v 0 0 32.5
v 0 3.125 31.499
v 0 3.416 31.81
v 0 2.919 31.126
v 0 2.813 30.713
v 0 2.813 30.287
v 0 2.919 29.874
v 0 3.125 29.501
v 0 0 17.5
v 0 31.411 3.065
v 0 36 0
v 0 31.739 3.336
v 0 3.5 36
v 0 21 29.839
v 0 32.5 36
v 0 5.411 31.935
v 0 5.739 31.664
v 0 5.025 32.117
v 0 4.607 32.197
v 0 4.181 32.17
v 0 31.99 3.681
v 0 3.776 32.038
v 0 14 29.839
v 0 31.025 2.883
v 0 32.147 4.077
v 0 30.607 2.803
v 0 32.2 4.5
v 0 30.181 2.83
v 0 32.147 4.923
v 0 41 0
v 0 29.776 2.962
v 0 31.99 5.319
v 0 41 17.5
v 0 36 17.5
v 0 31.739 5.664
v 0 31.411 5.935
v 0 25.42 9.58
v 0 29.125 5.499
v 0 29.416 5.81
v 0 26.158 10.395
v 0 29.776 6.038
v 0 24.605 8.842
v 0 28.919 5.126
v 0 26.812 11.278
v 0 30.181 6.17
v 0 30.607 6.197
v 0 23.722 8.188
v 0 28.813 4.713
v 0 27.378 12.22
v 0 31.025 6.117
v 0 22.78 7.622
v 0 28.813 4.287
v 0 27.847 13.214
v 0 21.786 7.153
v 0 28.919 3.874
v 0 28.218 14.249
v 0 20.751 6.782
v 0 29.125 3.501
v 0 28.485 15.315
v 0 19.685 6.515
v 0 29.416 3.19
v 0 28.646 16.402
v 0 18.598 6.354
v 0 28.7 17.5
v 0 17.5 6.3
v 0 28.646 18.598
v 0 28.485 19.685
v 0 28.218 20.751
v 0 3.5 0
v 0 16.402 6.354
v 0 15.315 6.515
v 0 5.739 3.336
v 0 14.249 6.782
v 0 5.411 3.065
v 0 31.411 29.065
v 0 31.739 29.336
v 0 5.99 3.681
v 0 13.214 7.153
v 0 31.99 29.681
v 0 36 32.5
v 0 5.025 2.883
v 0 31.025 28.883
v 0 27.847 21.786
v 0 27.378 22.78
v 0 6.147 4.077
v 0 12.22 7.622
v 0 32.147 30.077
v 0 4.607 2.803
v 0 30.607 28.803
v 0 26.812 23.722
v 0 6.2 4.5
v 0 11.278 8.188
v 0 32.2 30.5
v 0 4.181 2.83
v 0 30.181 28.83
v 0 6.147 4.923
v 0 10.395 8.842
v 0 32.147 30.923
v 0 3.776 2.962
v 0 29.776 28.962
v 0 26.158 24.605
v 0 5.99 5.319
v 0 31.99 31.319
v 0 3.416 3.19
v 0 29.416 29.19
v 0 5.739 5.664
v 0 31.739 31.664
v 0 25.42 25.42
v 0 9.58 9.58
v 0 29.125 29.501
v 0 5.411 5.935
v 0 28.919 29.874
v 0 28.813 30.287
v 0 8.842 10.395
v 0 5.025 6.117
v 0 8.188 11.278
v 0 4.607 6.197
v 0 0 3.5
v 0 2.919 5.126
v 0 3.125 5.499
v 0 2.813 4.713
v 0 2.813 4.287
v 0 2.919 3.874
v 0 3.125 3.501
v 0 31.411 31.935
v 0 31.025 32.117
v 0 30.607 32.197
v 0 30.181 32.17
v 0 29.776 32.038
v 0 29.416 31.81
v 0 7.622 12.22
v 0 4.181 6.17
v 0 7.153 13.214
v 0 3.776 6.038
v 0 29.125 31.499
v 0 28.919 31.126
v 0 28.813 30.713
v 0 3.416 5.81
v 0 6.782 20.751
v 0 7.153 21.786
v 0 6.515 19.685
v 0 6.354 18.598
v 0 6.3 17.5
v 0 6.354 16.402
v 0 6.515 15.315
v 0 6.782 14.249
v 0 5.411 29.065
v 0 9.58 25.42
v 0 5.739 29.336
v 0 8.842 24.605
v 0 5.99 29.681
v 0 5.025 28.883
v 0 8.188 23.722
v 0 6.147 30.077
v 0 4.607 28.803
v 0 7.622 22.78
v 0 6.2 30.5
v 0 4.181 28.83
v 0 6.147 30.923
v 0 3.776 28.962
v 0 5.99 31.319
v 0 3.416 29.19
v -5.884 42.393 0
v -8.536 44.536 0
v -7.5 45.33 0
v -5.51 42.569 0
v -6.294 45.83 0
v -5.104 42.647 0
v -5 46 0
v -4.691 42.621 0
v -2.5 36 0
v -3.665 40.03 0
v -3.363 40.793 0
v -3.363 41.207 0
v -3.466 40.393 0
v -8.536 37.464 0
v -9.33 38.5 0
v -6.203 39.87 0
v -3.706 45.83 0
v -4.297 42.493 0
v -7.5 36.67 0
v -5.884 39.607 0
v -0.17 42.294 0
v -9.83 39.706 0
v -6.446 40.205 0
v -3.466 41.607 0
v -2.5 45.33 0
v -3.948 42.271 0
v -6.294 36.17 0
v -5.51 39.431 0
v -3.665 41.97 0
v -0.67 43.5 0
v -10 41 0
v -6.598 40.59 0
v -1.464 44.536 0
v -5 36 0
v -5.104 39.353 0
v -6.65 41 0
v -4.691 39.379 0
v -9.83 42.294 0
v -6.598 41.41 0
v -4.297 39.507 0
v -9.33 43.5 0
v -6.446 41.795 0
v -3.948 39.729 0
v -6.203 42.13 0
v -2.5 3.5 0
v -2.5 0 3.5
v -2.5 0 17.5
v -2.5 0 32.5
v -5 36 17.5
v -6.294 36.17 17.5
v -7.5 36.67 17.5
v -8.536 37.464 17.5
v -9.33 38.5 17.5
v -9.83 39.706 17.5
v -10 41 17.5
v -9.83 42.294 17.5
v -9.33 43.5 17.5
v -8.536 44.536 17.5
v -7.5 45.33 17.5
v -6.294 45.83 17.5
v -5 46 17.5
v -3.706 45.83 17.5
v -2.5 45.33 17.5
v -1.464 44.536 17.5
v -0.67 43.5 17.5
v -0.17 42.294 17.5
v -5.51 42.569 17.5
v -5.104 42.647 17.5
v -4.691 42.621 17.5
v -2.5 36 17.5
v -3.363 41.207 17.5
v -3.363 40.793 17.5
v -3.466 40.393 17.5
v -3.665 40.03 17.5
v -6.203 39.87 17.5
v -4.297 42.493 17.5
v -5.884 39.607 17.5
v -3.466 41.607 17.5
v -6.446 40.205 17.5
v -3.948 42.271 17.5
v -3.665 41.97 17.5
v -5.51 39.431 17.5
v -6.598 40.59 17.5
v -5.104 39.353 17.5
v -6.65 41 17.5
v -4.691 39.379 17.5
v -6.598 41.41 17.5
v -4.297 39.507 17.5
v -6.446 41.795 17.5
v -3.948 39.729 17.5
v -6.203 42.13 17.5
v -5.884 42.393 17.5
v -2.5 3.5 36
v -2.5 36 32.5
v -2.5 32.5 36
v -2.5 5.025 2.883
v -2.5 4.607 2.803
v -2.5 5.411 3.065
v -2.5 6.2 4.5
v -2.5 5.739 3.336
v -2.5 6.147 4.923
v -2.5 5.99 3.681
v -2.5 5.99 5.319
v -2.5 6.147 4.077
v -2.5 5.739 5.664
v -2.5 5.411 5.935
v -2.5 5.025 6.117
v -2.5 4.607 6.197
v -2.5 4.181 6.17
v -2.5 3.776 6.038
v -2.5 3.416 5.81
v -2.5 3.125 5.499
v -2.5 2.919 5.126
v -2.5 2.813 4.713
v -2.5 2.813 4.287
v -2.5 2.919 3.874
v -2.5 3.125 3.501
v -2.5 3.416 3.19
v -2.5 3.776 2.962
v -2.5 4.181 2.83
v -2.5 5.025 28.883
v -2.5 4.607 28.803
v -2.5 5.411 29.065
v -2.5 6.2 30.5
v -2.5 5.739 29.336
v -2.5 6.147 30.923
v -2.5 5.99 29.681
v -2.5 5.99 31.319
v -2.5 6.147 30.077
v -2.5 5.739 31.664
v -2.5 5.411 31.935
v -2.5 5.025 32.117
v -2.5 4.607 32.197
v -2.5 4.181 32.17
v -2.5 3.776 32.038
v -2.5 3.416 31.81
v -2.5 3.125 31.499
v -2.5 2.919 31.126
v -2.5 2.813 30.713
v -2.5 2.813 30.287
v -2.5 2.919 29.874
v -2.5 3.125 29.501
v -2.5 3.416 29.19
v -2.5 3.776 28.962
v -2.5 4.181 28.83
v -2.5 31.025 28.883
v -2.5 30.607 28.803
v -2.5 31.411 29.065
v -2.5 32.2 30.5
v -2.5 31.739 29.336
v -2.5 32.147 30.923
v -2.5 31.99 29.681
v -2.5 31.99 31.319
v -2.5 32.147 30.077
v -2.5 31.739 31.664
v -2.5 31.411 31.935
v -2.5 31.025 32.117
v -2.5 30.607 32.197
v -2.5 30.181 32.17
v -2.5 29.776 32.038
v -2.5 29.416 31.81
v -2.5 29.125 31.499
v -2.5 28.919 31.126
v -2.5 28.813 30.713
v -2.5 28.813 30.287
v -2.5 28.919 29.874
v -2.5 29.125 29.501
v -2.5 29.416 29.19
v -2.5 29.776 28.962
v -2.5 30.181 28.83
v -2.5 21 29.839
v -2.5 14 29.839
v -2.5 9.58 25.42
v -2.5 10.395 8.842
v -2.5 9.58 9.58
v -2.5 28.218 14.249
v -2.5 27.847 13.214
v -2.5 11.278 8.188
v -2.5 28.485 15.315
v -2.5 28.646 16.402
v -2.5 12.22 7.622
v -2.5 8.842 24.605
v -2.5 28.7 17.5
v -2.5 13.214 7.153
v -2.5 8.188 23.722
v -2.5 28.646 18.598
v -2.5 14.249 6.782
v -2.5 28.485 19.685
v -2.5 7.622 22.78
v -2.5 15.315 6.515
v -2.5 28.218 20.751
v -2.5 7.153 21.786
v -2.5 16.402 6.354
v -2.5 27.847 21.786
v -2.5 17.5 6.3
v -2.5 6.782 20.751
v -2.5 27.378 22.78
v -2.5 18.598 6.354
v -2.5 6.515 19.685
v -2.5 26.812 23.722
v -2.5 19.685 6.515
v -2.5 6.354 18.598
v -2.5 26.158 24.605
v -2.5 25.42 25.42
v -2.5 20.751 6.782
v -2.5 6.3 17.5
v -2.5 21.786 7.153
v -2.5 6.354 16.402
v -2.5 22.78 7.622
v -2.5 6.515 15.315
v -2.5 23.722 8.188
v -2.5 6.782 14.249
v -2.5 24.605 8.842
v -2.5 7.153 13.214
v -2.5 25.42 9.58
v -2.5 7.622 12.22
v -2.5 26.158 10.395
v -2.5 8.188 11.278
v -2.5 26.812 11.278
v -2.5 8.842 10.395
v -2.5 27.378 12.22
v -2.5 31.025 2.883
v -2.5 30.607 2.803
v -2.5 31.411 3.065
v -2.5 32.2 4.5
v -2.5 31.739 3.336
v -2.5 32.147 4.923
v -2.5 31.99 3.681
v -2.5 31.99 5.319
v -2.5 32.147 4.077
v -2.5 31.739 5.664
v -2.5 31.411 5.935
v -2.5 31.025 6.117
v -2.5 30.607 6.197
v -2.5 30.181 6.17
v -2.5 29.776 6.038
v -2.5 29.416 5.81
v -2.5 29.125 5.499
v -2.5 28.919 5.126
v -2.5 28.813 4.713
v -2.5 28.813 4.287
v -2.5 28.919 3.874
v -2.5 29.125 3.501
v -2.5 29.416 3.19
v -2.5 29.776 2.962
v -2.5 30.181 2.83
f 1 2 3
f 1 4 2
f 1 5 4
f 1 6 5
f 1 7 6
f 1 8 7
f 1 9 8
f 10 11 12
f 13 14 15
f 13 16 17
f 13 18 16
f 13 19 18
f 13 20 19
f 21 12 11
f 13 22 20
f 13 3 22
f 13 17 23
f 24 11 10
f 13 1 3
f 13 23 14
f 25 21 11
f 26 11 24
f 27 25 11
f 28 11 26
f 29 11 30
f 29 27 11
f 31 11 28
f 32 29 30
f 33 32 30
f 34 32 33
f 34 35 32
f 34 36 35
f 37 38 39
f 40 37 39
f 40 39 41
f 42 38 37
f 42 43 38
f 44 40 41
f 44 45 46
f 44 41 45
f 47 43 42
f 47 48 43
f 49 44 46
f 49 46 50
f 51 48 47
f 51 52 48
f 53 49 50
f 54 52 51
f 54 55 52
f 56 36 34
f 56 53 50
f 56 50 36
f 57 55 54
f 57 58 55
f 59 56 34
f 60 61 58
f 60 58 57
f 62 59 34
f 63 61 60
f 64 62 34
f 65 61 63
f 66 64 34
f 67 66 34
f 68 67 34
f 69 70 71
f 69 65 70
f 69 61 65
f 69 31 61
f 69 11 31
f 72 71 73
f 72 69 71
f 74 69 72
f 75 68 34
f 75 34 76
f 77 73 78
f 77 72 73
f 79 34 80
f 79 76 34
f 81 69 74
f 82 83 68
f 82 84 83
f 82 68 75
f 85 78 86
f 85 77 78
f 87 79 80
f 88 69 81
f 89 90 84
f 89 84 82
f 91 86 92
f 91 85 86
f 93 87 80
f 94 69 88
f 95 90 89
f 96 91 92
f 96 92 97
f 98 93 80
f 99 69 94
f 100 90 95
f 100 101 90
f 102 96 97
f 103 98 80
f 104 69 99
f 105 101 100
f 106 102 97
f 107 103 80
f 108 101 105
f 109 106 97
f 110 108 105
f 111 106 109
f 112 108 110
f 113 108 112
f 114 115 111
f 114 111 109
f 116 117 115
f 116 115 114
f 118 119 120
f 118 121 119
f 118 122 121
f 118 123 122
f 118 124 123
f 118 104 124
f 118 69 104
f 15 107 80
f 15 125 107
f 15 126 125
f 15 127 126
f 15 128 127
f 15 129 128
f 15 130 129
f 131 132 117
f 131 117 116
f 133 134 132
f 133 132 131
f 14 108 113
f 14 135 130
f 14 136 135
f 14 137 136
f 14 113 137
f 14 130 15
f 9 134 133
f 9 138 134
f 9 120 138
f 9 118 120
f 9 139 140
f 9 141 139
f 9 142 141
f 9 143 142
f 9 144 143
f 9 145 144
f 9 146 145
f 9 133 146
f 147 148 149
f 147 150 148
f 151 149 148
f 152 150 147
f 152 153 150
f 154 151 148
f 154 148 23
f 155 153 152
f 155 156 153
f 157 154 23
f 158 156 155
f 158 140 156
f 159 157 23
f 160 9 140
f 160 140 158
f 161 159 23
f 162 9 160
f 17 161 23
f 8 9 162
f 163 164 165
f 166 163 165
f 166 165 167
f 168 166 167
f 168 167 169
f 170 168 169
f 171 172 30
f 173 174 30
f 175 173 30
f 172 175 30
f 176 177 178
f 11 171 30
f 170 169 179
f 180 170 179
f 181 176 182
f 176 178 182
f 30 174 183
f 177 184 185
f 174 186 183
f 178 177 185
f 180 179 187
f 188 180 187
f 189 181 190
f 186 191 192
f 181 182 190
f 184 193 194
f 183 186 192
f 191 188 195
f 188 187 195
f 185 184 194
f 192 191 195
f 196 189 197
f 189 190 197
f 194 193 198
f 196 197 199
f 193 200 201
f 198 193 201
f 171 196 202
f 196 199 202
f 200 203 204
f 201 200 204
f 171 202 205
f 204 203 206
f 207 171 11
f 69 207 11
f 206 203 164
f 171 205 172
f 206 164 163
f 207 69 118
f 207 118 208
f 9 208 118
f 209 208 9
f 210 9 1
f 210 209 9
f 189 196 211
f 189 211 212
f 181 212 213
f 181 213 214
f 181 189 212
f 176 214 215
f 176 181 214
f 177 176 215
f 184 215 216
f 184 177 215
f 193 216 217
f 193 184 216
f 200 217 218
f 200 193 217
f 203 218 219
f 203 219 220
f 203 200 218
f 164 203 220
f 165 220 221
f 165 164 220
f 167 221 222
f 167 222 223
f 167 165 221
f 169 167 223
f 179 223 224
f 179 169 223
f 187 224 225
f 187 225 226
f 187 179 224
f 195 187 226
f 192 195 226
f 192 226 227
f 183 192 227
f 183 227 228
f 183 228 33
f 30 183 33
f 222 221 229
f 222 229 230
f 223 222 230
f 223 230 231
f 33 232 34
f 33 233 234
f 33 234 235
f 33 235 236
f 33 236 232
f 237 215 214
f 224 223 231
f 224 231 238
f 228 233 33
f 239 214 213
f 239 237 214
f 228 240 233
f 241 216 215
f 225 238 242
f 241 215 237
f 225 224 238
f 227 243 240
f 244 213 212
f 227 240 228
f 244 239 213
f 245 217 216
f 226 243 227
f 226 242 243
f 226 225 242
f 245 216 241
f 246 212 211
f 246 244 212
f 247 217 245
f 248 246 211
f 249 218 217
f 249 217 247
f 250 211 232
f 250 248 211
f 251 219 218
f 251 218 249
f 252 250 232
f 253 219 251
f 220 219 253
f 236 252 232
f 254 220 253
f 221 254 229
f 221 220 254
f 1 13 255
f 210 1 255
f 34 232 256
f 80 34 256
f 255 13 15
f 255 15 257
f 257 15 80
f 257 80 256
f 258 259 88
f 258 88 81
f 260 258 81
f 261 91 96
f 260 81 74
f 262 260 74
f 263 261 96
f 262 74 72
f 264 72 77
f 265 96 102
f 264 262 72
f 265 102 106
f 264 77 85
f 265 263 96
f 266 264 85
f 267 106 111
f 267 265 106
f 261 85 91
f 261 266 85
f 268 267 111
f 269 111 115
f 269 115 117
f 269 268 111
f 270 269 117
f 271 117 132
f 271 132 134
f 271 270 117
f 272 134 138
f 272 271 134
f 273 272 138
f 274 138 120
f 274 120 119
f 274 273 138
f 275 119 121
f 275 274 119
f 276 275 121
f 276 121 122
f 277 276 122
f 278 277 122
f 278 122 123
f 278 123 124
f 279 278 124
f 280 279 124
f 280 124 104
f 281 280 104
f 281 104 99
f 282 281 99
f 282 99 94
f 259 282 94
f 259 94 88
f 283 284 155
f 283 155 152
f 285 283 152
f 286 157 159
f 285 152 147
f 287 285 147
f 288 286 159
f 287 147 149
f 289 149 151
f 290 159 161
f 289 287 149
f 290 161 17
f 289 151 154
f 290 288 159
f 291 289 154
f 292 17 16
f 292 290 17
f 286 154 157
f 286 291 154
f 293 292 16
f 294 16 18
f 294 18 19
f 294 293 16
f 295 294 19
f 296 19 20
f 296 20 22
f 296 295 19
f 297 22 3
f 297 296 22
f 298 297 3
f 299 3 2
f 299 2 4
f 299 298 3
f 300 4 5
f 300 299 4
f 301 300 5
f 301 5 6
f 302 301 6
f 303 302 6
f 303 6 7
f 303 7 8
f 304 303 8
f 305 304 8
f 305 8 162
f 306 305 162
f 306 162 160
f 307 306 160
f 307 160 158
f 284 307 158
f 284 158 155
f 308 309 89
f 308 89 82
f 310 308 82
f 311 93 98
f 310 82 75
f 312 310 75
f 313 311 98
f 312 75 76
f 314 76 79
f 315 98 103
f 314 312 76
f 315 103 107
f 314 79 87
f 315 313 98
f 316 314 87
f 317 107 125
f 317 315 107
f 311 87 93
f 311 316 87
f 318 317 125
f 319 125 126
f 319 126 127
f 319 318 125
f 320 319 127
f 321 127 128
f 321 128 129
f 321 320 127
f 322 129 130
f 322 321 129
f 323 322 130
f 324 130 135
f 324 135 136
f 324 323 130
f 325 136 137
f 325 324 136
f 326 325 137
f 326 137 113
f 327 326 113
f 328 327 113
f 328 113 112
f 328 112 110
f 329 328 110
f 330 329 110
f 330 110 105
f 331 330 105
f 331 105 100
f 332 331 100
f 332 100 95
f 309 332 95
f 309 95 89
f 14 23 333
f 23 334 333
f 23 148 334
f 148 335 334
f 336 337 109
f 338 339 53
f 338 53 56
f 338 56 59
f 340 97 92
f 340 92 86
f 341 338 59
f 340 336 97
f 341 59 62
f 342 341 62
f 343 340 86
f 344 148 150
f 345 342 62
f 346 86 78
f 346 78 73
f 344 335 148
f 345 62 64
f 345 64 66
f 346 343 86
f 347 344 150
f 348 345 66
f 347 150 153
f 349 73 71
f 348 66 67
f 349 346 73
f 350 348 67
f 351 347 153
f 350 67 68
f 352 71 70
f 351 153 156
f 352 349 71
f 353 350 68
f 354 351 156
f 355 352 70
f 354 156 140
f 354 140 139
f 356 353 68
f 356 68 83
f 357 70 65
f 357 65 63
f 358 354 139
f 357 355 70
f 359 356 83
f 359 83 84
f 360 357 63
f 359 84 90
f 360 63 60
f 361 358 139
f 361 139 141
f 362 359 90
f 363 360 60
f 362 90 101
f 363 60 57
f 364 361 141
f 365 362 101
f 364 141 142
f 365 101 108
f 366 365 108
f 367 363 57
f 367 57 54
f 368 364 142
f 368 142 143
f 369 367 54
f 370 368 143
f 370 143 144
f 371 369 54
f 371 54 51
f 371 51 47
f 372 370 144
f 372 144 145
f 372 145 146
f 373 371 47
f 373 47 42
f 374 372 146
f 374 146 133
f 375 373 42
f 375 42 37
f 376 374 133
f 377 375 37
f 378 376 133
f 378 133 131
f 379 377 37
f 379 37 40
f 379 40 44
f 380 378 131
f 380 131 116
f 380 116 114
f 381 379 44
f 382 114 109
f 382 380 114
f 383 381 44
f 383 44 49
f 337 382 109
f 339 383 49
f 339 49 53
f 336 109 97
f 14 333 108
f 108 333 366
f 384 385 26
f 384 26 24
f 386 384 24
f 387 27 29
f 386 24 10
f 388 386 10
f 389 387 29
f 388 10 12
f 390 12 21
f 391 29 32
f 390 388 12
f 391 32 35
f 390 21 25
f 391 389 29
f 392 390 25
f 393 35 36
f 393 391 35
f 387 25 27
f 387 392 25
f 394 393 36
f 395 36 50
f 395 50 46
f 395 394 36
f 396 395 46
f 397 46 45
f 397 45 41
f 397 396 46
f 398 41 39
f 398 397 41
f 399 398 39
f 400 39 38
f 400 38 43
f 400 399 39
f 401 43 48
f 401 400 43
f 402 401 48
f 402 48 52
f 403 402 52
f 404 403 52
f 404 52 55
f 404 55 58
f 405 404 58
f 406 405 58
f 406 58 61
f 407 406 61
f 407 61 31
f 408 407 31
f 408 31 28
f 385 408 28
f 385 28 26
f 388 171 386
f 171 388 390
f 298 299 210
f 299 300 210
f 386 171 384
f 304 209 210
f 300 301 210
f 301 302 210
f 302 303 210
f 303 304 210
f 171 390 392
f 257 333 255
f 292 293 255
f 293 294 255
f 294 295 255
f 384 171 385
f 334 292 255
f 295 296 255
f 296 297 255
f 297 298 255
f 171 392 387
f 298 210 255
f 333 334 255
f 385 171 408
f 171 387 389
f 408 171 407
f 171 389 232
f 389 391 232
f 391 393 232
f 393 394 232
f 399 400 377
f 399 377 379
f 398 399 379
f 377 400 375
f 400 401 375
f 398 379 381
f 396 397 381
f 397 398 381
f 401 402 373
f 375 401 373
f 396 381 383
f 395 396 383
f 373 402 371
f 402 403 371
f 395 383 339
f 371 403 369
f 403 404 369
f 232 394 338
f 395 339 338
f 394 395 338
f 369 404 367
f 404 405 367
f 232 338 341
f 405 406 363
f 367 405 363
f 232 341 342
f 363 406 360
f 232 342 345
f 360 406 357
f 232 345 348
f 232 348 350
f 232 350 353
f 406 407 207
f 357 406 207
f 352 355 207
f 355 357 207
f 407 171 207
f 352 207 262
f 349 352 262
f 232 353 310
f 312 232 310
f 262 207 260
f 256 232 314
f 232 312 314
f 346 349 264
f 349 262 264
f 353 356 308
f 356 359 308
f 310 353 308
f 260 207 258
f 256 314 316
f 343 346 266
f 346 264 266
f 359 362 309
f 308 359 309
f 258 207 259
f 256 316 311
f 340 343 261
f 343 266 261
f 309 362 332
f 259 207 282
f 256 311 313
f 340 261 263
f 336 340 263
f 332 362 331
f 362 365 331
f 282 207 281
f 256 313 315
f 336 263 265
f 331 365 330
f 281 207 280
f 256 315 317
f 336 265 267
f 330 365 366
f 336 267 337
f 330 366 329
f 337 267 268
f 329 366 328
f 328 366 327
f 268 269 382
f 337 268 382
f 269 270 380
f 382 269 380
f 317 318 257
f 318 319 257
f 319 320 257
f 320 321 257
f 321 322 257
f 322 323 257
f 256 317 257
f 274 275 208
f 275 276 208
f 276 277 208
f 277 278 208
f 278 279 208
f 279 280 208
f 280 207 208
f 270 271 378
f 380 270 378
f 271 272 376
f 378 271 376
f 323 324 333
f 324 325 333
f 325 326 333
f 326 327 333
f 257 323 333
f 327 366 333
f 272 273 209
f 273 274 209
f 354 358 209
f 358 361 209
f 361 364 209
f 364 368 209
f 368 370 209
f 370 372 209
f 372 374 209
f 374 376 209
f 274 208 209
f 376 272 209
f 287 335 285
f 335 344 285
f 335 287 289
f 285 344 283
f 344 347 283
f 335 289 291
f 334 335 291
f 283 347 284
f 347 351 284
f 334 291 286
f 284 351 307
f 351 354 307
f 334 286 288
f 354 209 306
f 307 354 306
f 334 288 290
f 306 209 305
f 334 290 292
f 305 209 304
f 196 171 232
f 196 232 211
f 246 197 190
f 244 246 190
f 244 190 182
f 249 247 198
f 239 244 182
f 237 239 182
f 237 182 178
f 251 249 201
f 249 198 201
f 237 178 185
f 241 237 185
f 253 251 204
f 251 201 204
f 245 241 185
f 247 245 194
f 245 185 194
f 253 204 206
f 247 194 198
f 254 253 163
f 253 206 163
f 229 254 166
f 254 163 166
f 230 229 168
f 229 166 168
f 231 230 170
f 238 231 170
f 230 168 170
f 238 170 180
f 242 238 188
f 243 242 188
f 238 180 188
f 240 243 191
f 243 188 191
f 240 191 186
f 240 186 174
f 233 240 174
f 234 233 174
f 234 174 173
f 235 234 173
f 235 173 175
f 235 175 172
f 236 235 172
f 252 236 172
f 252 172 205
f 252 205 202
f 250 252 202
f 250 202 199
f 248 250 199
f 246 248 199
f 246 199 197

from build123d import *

# Parameters (mm, degrees)
BOX_W        = 2.5
BOX_H        = 36
BOX_DEPTH    = 36
SKETCH_R     = 1.65
PAD_DEPTH    = 17.5
SKETCH001_R  = 1.7
POCKET_DEPTH = 5
CHAMFER_SIZE = 3.5


with BuildPart() as cubo:
    # Box → Box (new body)
    with BuildSketch(Plane.XY):
        with Locations((1.25, 18)):
            Rectangle(BOX_W, BOX_H)
    extrude(amount=BOX_DEPTH)


with BuildPart() as chamfer_body:
    # Sketch → Pad (new body)
    with BuildSketch(Plane.XY):
        with BuildLine():
            Line((0, 0), (2.5, 0))
            Line((2.5, 0), (2.5, 36))
            Line((2.5, 36), (5.000024, 36))
            ThreePointArc((5.000024, 36), (8.535534, 44.535534), (0, 41.000023))
            Line((0, 41.000023), (0, 0))
        make_face()
        with Locations((5, 41)):
            Circle(SKETCH_R, mode=Mode.SUBTRACT)
    extrude(amount=PAD_DEPTH)

    # Fusion: union Cubo
    add(cubo.part)

    # Sketch001 → Pocket (cut)
    with BuildSketch(Plane.YZ.offset(2.5)):
        with Locations((4.5, 30.5)):
            Circle(SKETCH001_R)
        with Locations((30.5, 30.5)):
            Circle(SKETCH001_R)
        with Locations((30.5, 4.5)):
            Circle(SKETCH001_R)
        with Locations((4.5, 4.5)):
            Circle(SKETCH001_R)
        with BuildLine():
            Line((9.580377, 25.419569), (14, 29.839192))
            Line((14, 29.839192), (21, 29.839192))
            Line((21, 29.839192), (25.419623, 25.419569))
            ThreePointArc((9.580377, 25.419569), (17.5, 6.3), (25.419623, 25.419569))
        make_face()
    extrude(amount=-POCKET_DEPTH, mode=Mode.SUBTRACT)

    # Chamfer
    chamfer_edges = [chamfer_body.edges().sort_by_distance(p)[0] for p in [
        (1.25, 36, 36),
        (1.25, 0, 36),
        (1.25, 0, 0),
    ]]
    chamfer(chamfer_edges, length=CHAMFER_SIZE)


with BuildPart() as part_mirroring:
    # Part__Mirroring: instance of Chamfer body
    add(chamfer_body.part.mirror(Plane(origin=(0, 0, 0), x_dir=(0, -1, 0), z_dir=(1, 0, 0))))


solid = part_mirroring.part
